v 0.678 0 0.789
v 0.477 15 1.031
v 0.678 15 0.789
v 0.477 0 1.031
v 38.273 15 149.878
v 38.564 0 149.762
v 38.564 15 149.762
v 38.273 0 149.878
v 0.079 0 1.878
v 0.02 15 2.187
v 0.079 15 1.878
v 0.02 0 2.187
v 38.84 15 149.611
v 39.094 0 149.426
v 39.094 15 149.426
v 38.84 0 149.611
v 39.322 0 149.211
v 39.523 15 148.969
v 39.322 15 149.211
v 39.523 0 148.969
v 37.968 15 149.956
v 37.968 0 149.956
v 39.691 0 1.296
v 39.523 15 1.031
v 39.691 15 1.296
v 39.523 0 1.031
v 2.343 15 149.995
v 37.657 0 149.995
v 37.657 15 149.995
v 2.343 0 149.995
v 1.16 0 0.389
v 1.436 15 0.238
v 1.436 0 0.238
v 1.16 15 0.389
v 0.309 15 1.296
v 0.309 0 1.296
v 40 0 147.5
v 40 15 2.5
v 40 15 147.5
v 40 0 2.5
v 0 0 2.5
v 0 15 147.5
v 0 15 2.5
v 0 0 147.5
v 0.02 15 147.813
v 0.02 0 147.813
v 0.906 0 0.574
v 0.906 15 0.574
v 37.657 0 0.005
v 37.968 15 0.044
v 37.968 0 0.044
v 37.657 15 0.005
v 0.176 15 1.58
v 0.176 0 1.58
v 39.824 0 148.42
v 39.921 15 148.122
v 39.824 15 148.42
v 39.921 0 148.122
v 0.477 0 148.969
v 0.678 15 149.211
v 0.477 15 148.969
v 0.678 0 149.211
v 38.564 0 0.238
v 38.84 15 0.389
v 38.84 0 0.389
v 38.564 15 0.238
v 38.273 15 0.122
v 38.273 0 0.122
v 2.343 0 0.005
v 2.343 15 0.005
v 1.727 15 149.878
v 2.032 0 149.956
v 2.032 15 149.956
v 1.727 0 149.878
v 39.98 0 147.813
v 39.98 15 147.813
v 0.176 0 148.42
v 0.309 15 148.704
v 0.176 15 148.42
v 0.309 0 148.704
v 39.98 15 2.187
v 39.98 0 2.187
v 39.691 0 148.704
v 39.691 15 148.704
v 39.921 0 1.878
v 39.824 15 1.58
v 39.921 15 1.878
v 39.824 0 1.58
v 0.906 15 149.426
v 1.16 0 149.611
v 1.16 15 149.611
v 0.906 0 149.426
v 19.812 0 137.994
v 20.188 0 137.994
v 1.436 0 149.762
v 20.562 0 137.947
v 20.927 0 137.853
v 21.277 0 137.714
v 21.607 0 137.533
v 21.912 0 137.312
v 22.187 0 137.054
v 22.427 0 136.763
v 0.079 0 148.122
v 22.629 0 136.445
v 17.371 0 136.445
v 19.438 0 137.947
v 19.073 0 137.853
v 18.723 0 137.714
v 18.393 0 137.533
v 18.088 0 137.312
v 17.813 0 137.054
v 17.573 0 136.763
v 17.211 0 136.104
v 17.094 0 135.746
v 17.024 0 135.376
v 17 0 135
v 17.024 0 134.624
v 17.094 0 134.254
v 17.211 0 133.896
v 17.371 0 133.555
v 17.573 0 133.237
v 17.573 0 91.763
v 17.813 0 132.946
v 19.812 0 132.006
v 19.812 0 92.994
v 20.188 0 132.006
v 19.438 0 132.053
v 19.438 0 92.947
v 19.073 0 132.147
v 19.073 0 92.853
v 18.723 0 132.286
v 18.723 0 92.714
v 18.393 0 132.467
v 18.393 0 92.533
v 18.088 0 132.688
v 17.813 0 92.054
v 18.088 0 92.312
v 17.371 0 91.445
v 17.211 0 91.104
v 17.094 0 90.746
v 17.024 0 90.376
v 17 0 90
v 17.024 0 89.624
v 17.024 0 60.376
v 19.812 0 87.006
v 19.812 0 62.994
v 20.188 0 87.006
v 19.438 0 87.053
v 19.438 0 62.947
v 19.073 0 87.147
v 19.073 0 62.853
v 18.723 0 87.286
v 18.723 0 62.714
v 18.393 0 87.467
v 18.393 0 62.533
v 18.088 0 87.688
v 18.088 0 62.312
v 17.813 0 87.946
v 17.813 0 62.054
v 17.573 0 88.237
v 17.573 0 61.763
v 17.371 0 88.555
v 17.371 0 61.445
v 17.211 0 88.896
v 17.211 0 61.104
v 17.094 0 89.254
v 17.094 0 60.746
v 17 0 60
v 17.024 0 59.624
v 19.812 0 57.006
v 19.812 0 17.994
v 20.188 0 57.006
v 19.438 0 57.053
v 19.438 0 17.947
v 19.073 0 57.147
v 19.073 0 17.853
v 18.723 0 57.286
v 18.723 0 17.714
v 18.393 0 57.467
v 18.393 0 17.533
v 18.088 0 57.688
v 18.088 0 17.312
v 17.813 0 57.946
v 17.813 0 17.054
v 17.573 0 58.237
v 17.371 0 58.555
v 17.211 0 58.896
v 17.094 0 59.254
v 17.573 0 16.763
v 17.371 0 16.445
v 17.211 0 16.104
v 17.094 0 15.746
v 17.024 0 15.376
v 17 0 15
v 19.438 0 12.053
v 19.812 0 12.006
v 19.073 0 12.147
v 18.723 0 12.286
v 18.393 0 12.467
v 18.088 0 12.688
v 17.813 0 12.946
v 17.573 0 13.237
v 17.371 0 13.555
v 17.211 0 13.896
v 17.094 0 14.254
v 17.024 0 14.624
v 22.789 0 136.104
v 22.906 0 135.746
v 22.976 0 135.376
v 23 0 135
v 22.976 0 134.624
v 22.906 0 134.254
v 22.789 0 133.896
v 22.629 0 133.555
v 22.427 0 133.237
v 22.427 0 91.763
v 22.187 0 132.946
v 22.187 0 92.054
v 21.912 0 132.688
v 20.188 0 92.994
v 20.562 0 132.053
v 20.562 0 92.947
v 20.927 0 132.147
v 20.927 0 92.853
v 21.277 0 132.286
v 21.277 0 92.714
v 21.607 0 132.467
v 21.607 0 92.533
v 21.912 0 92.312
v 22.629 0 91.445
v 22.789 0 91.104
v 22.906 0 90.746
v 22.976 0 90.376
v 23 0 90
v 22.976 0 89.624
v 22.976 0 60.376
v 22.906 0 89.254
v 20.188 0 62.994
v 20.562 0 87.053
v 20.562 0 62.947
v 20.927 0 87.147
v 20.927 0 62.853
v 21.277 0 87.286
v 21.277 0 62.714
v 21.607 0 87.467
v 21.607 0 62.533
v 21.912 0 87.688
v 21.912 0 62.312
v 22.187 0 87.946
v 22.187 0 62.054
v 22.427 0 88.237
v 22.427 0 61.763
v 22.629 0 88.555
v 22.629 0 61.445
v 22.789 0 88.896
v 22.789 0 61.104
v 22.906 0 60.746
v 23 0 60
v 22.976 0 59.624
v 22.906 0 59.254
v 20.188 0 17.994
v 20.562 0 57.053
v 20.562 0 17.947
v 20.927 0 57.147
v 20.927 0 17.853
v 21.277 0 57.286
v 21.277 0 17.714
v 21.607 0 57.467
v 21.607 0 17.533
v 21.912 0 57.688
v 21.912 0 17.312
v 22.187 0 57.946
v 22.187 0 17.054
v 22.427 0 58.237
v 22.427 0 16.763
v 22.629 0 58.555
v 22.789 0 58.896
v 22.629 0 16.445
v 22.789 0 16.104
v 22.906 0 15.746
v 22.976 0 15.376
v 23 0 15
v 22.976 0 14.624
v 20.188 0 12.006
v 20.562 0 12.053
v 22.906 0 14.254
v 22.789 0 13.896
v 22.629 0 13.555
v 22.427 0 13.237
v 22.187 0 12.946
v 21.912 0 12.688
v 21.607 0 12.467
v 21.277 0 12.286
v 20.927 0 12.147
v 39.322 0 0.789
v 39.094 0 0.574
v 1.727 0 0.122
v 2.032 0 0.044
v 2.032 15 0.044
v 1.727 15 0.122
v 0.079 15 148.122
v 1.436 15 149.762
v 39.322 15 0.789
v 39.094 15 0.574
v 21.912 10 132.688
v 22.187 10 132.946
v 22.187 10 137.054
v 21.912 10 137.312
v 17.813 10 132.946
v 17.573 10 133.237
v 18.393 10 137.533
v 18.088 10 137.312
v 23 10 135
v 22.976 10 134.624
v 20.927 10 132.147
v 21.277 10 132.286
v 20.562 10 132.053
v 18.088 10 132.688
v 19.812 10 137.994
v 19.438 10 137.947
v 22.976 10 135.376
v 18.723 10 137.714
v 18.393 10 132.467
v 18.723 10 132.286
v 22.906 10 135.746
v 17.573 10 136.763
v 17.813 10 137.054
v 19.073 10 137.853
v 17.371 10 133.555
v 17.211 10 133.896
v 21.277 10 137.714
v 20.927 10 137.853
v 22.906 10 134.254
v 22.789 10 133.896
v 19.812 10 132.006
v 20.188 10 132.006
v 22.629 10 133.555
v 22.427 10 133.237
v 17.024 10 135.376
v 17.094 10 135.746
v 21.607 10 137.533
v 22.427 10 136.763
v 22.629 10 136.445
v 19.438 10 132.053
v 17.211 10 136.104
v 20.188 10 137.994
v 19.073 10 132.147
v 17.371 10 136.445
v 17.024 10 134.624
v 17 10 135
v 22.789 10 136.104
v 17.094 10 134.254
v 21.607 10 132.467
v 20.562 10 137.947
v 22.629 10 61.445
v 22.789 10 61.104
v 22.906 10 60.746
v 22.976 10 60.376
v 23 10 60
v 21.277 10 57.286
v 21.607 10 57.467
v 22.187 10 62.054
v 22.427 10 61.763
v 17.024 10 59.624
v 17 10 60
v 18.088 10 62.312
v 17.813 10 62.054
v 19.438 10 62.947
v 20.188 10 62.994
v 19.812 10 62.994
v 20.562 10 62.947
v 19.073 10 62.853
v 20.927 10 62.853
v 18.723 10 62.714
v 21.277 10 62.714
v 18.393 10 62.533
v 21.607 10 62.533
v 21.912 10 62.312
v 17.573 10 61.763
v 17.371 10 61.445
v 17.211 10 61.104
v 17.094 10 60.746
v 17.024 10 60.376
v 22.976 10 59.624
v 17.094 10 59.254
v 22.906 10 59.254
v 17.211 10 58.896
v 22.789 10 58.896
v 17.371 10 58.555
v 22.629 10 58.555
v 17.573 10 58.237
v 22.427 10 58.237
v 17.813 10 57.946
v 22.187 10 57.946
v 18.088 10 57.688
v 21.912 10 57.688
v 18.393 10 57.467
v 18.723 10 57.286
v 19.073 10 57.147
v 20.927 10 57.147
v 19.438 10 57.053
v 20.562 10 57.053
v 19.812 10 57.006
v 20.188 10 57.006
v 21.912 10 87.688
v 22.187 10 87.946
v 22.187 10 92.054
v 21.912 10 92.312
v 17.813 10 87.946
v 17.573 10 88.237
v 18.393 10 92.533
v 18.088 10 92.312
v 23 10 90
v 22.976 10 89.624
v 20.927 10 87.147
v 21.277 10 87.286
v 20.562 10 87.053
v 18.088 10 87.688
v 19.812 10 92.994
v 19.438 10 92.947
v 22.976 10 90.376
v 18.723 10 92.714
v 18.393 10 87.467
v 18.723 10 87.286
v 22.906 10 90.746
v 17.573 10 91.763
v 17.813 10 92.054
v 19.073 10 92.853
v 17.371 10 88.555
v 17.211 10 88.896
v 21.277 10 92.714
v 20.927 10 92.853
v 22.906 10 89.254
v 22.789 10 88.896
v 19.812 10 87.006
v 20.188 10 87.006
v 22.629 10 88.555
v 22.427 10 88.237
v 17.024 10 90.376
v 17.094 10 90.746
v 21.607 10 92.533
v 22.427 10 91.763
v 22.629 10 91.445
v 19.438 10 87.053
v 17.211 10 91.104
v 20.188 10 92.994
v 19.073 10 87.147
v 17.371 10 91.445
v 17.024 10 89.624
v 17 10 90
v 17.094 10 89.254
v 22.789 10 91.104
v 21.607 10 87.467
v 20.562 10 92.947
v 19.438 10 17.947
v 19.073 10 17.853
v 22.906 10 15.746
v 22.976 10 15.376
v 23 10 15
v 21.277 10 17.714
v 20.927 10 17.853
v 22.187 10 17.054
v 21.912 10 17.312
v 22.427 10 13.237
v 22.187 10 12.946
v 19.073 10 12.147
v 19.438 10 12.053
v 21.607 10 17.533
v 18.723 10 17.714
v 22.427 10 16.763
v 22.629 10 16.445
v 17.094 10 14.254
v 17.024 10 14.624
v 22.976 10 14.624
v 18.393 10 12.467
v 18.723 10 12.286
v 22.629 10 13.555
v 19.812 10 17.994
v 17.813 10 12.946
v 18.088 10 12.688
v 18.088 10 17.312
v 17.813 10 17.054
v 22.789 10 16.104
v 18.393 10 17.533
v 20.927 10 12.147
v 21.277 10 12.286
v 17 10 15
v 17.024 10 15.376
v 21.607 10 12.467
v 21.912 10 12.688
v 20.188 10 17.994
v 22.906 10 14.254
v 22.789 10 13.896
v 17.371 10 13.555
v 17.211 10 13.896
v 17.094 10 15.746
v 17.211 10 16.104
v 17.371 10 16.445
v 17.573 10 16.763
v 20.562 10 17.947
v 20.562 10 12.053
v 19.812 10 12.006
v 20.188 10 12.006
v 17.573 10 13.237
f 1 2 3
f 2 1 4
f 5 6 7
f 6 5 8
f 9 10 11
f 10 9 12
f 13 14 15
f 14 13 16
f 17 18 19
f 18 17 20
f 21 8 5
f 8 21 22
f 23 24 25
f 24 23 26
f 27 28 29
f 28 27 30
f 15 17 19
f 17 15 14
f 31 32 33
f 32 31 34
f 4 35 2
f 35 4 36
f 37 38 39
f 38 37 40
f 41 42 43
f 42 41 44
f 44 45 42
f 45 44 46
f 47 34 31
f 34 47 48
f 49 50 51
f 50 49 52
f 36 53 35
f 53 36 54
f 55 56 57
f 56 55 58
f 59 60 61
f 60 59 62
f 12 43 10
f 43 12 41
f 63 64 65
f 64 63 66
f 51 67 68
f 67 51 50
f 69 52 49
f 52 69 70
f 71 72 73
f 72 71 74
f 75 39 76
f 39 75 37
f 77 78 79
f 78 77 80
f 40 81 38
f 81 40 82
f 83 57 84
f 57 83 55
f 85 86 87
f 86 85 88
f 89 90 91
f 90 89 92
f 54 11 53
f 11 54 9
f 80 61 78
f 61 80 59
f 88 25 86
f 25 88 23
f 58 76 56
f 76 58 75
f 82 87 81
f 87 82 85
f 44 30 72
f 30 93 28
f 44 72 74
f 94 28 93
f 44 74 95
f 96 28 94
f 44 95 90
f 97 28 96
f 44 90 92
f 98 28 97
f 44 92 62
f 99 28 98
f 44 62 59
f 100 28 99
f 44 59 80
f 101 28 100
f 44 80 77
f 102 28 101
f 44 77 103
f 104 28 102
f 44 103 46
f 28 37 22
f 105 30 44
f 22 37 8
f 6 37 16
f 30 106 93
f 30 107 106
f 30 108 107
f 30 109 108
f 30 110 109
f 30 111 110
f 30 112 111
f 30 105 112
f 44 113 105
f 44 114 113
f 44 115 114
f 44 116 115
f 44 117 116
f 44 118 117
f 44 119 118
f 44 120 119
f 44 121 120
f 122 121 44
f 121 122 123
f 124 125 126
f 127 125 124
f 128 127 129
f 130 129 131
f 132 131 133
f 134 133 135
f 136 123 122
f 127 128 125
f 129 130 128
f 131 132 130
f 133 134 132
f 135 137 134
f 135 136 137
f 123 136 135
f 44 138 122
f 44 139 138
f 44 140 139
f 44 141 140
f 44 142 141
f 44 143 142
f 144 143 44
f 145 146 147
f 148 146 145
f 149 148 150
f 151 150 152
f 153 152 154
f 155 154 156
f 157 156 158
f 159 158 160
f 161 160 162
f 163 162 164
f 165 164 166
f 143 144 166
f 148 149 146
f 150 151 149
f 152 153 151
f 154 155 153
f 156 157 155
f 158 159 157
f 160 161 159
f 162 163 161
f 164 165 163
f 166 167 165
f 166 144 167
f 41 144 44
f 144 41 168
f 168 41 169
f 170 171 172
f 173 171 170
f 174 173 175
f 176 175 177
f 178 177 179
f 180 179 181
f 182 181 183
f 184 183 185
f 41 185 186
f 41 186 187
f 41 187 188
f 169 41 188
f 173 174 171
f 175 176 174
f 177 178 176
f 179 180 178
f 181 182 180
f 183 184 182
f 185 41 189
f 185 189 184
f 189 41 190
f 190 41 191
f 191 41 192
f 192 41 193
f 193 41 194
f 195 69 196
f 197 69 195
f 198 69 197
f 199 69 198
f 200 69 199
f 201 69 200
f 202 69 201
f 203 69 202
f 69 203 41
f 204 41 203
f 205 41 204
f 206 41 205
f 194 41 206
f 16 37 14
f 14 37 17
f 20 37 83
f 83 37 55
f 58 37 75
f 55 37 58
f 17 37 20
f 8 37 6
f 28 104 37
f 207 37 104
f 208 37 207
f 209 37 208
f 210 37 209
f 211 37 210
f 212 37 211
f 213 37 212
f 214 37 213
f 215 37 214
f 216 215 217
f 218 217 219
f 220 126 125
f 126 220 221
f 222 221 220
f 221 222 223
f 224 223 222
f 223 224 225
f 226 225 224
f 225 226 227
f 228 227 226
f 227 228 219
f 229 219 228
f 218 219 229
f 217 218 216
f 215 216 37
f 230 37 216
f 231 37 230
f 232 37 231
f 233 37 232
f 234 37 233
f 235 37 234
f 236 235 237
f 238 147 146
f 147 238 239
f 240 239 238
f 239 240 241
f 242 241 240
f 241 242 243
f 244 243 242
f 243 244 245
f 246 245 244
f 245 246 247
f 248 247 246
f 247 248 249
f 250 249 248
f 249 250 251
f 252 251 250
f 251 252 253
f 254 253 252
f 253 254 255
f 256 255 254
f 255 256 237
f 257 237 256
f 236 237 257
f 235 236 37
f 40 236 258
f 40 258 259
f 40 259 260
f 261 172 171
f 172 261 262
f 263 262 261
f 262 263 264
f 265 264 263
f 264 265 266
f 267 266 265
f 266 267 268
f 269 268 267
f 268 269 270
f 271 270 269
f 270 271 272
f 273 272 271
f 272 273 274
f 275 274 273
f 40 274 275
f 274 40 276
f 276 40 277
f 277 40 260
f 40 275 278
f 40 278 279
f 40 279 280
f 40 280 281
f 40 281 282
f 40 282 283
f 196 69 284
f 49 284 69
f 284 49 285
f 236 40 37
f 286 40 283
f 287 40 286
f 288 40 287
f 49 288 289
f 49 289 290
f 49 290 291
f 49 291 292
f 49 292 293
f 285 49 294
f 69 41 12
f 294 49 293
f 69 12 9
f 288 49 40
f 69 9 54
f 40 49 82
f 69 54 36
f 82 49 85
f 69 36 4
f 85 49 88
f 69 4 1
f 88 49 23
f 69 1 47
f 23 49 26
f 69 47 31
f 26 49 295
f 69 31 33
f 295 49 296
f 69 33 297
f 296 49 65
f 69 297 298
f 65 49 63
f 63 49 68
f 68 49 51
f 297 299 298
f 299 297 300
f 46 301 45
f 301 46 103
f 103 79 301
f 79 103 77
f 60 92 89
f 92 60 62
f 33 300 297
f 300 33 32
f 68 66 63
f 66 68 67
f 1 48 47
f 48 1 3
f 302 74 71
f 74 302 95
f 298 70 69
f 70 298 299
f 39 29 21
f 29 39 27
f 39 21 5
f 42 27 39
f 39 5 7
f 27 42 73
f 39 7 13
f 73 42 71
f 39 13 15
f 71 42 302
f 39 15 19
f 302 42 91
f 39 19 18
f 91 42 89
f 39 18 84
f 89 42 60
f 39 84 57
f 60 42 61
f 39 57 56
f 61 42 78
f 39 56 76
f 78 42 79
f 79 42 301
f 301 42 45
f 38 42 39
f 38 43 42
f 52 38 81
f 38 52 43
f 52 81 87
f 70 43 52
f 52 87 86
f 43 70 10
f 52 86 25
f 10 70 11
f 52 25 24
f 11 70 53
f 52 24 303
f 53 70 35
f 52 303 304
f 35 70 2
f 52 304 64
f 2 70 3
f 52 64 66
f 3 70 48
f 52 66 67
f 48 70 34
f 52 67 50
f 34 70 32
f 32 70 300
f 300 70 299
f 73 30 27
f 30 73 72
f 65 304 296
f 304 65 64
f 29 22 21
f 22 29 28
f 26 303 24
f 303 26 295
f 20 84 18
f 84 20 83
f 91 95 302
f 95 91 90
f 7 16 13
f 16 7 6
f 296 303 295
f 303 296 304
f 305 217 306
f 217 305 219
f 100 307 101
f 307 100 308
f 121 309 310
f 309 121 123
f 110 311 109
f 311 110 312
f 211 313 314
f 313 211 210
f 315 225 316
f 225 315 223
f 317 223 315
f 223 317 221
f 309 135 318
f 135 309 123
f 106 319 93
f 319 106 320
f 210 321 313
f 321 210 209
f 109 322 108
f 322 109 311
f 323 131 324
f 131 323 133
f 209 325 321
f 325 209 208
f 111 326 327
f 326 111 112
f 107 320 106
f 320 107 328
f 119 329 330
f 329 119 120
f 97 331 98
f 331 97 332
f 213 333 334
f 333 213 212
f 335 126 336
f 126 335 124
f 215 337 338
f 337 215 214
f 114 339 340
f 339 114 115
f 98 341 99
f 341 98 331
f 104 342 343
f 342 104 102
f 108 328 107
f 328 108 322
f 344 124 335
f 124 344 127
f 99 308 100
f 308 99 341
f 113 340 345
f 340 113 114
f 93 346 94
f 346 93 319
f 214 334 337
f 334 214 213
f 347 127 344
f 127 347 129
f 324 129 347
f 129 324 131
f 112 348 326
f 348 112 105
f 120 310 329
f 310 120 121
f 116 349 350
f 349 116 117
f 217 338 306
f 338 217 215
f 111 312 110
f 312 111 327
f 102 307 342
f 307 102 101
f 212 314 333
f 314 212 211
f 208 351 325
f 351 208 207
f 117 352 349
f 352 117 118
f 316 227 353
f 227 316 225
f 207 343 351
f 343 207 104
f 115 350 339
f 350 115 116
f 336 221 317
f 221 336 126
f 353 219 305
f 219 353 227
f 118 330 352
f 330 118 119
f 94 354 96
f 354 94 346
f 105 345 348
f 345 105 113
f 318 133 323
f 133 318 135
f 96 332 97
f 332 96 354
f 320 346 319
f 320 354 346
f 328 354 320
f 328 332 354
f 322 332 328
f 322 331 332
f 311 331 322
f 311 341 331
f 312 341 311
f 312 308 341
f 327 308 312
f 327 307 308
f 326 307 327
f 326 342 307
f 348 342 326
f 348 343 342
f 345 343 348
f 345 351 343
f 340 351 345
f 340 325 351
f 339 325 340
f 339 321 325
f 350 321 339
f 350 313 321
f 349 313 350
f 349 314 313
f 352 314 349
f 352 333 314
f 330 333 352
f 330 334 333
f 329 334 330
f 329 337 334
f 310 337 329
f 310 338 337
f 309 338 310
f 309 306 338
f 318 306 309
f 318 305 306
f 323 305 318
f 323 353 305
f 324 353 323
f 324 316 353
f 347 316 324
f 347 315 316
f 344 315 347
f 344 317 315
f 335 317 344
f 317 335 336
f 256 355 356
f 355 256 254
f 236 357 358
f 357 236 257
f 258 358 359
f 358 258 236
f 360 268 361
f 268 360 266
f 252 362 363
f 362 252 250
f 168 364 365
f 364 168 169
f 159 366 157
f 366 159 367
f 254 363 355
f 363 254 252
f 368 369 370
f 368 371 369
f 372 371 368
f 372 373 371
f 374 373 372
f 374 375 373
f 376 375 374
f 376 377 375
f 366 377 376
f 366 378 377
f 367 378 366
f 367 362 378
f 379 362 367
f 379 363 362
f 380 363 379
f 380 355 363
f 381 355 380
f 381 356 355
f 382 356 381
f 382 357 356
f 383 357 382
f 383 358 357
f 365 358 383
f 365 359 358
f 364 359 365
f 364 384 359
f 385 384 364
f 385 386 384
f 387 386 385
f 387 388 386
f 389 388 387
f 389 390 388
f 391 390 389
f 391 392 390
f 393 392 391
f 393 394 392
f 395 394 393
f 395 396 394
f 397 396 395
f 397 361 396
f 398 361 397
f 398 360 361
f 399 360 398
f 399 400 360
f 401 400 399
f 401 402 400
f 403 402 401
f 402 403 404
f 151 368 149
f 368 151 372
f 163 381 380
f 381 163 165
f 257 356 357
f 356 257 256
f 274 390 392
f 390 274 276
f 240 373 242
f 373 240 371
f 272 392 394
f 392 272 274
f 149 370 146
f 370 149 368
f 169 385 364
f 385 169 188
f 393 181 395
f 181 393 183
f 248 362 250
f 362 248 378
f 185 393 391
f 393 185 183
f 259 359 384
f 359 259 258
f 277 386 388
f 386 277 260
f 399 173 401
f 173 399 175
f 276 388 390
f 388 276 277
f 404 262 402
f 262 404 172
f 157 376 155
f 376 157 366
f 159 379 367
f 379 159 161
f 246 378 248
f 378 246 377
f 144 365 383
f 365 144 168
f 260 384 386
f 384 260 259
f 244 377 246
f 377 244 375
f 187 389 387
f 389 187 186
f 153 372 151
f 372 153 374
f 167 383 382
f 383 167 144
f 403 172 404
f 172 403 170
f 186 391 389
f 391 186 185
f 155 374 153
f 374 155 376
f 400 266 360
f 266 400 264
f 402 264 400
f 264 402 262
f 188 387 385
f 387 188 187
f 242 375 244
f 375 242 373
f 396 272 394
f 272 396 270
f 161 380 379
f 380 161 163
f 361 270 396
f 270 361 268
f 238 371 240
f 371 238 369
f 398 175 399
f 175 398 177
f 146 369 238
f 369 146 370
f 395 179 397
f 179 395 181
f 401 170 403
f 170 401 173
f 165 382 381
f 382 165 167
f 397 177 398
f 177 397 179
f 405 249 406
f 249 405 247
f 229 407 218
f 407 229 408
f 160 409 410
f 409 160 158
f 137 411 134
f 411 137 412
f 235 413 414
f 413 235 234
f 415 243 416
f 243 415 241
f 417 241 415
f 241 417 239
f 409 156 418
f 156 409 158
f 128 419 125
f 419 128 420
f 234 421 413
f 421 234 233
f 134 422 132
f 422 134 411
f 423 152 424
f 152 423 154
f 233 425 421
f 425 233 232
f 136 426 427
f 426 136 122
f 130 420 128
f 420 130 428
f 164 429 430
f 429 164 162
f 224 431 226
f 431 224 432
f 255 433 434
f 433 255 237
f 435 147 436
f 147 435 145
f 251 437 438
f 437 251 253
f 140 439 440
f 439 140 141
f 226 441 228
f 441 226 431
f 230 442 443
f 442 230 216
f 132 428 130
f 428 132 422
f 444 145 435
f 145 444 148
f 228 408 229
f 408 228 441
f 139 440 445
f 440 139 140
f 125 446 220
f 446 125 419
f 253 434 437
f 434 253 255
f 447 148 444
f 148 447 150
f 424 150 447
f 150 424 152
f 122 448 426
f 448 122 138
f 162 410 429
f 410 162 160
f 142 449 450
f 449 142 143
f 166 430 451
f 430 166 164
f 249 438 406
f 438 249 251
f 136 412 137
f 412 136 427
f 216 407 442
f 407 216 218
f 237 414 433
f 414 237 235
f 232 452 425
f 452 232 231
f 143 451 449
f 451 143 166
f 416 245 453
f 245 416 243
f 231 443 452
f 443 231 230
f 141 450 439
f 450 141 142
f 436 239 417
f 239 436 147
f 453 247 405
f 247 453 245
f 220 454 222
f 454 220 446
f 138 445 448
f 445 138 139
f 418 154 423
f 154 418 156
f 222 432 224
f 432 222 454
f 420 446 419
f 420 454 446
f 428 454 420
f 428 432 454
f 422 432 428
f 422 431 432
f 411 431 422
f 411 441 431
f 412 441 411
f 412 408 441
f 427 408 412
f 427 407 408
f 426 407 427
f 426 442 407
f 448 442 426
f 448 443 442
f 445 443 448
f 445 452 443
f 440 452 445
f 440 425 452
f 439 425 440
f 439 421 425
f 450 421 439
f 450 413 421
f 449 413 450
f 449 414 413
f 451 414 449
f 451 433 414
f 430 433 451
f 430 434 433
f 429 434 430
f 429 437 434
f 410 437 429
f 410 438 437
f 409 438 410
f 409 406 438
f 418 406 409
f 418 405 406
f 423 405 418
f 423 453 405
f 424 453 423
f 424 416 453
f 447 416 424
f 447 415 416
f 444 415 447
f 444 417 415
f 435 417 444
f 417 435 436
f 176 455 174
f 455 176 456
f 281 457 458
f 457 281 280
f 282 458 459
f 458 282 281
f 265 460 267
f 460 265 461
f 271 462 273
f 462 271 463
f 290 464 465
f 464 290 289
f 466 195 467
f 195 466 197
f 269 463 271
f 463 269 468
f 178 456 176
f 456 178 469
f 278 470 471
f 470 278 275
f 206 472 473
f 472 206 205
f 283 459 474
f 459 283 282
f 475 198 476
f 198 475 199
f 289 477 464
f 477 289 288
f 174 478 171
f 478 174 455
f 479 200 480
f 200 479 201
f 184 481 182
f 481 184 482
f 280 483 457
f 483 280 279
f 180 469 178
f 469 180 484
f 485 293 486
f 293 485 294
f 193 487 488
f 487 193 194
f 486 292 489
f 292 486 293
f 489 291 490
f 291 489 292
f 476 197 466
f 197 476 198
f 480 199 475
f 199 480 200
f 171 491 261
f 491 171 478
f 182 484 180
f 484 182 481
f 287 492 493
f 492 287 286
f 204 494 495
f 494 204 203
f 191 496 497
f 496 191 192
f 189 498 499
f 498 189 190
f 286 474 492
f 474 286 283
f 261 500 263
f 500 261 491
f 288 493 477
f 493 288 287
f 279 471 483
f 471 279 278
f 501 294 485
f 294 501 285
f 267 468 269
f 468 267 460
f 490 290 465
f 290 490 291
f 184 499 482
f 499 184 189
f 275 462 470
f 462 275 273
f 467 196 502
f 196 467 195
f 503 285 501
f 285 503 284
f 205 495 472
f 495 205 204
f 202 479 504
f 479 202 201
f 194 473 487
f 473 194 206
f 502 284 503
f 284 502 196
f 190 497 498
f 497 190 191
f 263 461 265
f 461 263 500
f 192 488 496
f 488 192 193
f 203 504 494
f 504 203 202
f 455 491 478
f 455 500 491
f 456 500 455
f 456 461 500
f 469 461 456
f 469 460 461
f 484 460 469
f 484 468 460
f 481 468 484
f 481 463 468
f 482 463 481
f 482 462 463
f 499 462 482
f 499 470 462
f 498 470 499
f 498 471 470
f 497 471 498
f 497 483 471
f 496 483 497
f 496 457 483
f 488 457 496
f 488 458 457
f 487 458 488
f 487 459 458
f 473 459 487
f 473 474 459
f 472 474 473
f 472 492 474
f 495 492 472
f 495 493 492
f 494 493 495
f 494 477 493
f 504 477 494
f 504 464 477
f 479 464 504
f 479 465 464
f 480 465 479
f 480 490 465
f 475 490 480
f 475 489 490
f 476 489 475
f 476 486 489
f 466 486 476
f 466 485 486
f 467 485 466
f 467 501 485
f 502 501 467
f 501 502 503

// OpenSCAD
$fn=50;

width=40;
depth=15;
height=75 * 2;
screw_diameter=6.0;
screw_depth=10.0;
corner=5.0;

module hole() {
    translate([screw_diameter/2, screw_depth, screw_diameter/2])
        rotate(90, [1, 0, 0])
            cylinder(h=screw_depth+1, d=screw_diameter, center=false);
}

difference() {

    minkowski() {
        translate([corner/2, corner, corner/2])
            rotate(90, [1, 0, 0])
                cylinder(h=corner, d=corner, center=false);
        translate([0, 0, 0])
            cube([width-corner, depth-corner, height-corner], center=false);
    }

    translate([width/2-screw_diameter/2, 0, height - 15 - screw_diameter/2])
        hole();
    translate([width/2-screw_diameter/2, 0, height/2 - 15 - screw_diameter/2])
        hole();
    translate([width/2-screw_diameter/2, 0, height/2 + 15 - screw_diameter/2])
        hole();
    translate([width/2-screw_diameter/2, 0, 15 - screw_diameter/2])
        hole();

}
